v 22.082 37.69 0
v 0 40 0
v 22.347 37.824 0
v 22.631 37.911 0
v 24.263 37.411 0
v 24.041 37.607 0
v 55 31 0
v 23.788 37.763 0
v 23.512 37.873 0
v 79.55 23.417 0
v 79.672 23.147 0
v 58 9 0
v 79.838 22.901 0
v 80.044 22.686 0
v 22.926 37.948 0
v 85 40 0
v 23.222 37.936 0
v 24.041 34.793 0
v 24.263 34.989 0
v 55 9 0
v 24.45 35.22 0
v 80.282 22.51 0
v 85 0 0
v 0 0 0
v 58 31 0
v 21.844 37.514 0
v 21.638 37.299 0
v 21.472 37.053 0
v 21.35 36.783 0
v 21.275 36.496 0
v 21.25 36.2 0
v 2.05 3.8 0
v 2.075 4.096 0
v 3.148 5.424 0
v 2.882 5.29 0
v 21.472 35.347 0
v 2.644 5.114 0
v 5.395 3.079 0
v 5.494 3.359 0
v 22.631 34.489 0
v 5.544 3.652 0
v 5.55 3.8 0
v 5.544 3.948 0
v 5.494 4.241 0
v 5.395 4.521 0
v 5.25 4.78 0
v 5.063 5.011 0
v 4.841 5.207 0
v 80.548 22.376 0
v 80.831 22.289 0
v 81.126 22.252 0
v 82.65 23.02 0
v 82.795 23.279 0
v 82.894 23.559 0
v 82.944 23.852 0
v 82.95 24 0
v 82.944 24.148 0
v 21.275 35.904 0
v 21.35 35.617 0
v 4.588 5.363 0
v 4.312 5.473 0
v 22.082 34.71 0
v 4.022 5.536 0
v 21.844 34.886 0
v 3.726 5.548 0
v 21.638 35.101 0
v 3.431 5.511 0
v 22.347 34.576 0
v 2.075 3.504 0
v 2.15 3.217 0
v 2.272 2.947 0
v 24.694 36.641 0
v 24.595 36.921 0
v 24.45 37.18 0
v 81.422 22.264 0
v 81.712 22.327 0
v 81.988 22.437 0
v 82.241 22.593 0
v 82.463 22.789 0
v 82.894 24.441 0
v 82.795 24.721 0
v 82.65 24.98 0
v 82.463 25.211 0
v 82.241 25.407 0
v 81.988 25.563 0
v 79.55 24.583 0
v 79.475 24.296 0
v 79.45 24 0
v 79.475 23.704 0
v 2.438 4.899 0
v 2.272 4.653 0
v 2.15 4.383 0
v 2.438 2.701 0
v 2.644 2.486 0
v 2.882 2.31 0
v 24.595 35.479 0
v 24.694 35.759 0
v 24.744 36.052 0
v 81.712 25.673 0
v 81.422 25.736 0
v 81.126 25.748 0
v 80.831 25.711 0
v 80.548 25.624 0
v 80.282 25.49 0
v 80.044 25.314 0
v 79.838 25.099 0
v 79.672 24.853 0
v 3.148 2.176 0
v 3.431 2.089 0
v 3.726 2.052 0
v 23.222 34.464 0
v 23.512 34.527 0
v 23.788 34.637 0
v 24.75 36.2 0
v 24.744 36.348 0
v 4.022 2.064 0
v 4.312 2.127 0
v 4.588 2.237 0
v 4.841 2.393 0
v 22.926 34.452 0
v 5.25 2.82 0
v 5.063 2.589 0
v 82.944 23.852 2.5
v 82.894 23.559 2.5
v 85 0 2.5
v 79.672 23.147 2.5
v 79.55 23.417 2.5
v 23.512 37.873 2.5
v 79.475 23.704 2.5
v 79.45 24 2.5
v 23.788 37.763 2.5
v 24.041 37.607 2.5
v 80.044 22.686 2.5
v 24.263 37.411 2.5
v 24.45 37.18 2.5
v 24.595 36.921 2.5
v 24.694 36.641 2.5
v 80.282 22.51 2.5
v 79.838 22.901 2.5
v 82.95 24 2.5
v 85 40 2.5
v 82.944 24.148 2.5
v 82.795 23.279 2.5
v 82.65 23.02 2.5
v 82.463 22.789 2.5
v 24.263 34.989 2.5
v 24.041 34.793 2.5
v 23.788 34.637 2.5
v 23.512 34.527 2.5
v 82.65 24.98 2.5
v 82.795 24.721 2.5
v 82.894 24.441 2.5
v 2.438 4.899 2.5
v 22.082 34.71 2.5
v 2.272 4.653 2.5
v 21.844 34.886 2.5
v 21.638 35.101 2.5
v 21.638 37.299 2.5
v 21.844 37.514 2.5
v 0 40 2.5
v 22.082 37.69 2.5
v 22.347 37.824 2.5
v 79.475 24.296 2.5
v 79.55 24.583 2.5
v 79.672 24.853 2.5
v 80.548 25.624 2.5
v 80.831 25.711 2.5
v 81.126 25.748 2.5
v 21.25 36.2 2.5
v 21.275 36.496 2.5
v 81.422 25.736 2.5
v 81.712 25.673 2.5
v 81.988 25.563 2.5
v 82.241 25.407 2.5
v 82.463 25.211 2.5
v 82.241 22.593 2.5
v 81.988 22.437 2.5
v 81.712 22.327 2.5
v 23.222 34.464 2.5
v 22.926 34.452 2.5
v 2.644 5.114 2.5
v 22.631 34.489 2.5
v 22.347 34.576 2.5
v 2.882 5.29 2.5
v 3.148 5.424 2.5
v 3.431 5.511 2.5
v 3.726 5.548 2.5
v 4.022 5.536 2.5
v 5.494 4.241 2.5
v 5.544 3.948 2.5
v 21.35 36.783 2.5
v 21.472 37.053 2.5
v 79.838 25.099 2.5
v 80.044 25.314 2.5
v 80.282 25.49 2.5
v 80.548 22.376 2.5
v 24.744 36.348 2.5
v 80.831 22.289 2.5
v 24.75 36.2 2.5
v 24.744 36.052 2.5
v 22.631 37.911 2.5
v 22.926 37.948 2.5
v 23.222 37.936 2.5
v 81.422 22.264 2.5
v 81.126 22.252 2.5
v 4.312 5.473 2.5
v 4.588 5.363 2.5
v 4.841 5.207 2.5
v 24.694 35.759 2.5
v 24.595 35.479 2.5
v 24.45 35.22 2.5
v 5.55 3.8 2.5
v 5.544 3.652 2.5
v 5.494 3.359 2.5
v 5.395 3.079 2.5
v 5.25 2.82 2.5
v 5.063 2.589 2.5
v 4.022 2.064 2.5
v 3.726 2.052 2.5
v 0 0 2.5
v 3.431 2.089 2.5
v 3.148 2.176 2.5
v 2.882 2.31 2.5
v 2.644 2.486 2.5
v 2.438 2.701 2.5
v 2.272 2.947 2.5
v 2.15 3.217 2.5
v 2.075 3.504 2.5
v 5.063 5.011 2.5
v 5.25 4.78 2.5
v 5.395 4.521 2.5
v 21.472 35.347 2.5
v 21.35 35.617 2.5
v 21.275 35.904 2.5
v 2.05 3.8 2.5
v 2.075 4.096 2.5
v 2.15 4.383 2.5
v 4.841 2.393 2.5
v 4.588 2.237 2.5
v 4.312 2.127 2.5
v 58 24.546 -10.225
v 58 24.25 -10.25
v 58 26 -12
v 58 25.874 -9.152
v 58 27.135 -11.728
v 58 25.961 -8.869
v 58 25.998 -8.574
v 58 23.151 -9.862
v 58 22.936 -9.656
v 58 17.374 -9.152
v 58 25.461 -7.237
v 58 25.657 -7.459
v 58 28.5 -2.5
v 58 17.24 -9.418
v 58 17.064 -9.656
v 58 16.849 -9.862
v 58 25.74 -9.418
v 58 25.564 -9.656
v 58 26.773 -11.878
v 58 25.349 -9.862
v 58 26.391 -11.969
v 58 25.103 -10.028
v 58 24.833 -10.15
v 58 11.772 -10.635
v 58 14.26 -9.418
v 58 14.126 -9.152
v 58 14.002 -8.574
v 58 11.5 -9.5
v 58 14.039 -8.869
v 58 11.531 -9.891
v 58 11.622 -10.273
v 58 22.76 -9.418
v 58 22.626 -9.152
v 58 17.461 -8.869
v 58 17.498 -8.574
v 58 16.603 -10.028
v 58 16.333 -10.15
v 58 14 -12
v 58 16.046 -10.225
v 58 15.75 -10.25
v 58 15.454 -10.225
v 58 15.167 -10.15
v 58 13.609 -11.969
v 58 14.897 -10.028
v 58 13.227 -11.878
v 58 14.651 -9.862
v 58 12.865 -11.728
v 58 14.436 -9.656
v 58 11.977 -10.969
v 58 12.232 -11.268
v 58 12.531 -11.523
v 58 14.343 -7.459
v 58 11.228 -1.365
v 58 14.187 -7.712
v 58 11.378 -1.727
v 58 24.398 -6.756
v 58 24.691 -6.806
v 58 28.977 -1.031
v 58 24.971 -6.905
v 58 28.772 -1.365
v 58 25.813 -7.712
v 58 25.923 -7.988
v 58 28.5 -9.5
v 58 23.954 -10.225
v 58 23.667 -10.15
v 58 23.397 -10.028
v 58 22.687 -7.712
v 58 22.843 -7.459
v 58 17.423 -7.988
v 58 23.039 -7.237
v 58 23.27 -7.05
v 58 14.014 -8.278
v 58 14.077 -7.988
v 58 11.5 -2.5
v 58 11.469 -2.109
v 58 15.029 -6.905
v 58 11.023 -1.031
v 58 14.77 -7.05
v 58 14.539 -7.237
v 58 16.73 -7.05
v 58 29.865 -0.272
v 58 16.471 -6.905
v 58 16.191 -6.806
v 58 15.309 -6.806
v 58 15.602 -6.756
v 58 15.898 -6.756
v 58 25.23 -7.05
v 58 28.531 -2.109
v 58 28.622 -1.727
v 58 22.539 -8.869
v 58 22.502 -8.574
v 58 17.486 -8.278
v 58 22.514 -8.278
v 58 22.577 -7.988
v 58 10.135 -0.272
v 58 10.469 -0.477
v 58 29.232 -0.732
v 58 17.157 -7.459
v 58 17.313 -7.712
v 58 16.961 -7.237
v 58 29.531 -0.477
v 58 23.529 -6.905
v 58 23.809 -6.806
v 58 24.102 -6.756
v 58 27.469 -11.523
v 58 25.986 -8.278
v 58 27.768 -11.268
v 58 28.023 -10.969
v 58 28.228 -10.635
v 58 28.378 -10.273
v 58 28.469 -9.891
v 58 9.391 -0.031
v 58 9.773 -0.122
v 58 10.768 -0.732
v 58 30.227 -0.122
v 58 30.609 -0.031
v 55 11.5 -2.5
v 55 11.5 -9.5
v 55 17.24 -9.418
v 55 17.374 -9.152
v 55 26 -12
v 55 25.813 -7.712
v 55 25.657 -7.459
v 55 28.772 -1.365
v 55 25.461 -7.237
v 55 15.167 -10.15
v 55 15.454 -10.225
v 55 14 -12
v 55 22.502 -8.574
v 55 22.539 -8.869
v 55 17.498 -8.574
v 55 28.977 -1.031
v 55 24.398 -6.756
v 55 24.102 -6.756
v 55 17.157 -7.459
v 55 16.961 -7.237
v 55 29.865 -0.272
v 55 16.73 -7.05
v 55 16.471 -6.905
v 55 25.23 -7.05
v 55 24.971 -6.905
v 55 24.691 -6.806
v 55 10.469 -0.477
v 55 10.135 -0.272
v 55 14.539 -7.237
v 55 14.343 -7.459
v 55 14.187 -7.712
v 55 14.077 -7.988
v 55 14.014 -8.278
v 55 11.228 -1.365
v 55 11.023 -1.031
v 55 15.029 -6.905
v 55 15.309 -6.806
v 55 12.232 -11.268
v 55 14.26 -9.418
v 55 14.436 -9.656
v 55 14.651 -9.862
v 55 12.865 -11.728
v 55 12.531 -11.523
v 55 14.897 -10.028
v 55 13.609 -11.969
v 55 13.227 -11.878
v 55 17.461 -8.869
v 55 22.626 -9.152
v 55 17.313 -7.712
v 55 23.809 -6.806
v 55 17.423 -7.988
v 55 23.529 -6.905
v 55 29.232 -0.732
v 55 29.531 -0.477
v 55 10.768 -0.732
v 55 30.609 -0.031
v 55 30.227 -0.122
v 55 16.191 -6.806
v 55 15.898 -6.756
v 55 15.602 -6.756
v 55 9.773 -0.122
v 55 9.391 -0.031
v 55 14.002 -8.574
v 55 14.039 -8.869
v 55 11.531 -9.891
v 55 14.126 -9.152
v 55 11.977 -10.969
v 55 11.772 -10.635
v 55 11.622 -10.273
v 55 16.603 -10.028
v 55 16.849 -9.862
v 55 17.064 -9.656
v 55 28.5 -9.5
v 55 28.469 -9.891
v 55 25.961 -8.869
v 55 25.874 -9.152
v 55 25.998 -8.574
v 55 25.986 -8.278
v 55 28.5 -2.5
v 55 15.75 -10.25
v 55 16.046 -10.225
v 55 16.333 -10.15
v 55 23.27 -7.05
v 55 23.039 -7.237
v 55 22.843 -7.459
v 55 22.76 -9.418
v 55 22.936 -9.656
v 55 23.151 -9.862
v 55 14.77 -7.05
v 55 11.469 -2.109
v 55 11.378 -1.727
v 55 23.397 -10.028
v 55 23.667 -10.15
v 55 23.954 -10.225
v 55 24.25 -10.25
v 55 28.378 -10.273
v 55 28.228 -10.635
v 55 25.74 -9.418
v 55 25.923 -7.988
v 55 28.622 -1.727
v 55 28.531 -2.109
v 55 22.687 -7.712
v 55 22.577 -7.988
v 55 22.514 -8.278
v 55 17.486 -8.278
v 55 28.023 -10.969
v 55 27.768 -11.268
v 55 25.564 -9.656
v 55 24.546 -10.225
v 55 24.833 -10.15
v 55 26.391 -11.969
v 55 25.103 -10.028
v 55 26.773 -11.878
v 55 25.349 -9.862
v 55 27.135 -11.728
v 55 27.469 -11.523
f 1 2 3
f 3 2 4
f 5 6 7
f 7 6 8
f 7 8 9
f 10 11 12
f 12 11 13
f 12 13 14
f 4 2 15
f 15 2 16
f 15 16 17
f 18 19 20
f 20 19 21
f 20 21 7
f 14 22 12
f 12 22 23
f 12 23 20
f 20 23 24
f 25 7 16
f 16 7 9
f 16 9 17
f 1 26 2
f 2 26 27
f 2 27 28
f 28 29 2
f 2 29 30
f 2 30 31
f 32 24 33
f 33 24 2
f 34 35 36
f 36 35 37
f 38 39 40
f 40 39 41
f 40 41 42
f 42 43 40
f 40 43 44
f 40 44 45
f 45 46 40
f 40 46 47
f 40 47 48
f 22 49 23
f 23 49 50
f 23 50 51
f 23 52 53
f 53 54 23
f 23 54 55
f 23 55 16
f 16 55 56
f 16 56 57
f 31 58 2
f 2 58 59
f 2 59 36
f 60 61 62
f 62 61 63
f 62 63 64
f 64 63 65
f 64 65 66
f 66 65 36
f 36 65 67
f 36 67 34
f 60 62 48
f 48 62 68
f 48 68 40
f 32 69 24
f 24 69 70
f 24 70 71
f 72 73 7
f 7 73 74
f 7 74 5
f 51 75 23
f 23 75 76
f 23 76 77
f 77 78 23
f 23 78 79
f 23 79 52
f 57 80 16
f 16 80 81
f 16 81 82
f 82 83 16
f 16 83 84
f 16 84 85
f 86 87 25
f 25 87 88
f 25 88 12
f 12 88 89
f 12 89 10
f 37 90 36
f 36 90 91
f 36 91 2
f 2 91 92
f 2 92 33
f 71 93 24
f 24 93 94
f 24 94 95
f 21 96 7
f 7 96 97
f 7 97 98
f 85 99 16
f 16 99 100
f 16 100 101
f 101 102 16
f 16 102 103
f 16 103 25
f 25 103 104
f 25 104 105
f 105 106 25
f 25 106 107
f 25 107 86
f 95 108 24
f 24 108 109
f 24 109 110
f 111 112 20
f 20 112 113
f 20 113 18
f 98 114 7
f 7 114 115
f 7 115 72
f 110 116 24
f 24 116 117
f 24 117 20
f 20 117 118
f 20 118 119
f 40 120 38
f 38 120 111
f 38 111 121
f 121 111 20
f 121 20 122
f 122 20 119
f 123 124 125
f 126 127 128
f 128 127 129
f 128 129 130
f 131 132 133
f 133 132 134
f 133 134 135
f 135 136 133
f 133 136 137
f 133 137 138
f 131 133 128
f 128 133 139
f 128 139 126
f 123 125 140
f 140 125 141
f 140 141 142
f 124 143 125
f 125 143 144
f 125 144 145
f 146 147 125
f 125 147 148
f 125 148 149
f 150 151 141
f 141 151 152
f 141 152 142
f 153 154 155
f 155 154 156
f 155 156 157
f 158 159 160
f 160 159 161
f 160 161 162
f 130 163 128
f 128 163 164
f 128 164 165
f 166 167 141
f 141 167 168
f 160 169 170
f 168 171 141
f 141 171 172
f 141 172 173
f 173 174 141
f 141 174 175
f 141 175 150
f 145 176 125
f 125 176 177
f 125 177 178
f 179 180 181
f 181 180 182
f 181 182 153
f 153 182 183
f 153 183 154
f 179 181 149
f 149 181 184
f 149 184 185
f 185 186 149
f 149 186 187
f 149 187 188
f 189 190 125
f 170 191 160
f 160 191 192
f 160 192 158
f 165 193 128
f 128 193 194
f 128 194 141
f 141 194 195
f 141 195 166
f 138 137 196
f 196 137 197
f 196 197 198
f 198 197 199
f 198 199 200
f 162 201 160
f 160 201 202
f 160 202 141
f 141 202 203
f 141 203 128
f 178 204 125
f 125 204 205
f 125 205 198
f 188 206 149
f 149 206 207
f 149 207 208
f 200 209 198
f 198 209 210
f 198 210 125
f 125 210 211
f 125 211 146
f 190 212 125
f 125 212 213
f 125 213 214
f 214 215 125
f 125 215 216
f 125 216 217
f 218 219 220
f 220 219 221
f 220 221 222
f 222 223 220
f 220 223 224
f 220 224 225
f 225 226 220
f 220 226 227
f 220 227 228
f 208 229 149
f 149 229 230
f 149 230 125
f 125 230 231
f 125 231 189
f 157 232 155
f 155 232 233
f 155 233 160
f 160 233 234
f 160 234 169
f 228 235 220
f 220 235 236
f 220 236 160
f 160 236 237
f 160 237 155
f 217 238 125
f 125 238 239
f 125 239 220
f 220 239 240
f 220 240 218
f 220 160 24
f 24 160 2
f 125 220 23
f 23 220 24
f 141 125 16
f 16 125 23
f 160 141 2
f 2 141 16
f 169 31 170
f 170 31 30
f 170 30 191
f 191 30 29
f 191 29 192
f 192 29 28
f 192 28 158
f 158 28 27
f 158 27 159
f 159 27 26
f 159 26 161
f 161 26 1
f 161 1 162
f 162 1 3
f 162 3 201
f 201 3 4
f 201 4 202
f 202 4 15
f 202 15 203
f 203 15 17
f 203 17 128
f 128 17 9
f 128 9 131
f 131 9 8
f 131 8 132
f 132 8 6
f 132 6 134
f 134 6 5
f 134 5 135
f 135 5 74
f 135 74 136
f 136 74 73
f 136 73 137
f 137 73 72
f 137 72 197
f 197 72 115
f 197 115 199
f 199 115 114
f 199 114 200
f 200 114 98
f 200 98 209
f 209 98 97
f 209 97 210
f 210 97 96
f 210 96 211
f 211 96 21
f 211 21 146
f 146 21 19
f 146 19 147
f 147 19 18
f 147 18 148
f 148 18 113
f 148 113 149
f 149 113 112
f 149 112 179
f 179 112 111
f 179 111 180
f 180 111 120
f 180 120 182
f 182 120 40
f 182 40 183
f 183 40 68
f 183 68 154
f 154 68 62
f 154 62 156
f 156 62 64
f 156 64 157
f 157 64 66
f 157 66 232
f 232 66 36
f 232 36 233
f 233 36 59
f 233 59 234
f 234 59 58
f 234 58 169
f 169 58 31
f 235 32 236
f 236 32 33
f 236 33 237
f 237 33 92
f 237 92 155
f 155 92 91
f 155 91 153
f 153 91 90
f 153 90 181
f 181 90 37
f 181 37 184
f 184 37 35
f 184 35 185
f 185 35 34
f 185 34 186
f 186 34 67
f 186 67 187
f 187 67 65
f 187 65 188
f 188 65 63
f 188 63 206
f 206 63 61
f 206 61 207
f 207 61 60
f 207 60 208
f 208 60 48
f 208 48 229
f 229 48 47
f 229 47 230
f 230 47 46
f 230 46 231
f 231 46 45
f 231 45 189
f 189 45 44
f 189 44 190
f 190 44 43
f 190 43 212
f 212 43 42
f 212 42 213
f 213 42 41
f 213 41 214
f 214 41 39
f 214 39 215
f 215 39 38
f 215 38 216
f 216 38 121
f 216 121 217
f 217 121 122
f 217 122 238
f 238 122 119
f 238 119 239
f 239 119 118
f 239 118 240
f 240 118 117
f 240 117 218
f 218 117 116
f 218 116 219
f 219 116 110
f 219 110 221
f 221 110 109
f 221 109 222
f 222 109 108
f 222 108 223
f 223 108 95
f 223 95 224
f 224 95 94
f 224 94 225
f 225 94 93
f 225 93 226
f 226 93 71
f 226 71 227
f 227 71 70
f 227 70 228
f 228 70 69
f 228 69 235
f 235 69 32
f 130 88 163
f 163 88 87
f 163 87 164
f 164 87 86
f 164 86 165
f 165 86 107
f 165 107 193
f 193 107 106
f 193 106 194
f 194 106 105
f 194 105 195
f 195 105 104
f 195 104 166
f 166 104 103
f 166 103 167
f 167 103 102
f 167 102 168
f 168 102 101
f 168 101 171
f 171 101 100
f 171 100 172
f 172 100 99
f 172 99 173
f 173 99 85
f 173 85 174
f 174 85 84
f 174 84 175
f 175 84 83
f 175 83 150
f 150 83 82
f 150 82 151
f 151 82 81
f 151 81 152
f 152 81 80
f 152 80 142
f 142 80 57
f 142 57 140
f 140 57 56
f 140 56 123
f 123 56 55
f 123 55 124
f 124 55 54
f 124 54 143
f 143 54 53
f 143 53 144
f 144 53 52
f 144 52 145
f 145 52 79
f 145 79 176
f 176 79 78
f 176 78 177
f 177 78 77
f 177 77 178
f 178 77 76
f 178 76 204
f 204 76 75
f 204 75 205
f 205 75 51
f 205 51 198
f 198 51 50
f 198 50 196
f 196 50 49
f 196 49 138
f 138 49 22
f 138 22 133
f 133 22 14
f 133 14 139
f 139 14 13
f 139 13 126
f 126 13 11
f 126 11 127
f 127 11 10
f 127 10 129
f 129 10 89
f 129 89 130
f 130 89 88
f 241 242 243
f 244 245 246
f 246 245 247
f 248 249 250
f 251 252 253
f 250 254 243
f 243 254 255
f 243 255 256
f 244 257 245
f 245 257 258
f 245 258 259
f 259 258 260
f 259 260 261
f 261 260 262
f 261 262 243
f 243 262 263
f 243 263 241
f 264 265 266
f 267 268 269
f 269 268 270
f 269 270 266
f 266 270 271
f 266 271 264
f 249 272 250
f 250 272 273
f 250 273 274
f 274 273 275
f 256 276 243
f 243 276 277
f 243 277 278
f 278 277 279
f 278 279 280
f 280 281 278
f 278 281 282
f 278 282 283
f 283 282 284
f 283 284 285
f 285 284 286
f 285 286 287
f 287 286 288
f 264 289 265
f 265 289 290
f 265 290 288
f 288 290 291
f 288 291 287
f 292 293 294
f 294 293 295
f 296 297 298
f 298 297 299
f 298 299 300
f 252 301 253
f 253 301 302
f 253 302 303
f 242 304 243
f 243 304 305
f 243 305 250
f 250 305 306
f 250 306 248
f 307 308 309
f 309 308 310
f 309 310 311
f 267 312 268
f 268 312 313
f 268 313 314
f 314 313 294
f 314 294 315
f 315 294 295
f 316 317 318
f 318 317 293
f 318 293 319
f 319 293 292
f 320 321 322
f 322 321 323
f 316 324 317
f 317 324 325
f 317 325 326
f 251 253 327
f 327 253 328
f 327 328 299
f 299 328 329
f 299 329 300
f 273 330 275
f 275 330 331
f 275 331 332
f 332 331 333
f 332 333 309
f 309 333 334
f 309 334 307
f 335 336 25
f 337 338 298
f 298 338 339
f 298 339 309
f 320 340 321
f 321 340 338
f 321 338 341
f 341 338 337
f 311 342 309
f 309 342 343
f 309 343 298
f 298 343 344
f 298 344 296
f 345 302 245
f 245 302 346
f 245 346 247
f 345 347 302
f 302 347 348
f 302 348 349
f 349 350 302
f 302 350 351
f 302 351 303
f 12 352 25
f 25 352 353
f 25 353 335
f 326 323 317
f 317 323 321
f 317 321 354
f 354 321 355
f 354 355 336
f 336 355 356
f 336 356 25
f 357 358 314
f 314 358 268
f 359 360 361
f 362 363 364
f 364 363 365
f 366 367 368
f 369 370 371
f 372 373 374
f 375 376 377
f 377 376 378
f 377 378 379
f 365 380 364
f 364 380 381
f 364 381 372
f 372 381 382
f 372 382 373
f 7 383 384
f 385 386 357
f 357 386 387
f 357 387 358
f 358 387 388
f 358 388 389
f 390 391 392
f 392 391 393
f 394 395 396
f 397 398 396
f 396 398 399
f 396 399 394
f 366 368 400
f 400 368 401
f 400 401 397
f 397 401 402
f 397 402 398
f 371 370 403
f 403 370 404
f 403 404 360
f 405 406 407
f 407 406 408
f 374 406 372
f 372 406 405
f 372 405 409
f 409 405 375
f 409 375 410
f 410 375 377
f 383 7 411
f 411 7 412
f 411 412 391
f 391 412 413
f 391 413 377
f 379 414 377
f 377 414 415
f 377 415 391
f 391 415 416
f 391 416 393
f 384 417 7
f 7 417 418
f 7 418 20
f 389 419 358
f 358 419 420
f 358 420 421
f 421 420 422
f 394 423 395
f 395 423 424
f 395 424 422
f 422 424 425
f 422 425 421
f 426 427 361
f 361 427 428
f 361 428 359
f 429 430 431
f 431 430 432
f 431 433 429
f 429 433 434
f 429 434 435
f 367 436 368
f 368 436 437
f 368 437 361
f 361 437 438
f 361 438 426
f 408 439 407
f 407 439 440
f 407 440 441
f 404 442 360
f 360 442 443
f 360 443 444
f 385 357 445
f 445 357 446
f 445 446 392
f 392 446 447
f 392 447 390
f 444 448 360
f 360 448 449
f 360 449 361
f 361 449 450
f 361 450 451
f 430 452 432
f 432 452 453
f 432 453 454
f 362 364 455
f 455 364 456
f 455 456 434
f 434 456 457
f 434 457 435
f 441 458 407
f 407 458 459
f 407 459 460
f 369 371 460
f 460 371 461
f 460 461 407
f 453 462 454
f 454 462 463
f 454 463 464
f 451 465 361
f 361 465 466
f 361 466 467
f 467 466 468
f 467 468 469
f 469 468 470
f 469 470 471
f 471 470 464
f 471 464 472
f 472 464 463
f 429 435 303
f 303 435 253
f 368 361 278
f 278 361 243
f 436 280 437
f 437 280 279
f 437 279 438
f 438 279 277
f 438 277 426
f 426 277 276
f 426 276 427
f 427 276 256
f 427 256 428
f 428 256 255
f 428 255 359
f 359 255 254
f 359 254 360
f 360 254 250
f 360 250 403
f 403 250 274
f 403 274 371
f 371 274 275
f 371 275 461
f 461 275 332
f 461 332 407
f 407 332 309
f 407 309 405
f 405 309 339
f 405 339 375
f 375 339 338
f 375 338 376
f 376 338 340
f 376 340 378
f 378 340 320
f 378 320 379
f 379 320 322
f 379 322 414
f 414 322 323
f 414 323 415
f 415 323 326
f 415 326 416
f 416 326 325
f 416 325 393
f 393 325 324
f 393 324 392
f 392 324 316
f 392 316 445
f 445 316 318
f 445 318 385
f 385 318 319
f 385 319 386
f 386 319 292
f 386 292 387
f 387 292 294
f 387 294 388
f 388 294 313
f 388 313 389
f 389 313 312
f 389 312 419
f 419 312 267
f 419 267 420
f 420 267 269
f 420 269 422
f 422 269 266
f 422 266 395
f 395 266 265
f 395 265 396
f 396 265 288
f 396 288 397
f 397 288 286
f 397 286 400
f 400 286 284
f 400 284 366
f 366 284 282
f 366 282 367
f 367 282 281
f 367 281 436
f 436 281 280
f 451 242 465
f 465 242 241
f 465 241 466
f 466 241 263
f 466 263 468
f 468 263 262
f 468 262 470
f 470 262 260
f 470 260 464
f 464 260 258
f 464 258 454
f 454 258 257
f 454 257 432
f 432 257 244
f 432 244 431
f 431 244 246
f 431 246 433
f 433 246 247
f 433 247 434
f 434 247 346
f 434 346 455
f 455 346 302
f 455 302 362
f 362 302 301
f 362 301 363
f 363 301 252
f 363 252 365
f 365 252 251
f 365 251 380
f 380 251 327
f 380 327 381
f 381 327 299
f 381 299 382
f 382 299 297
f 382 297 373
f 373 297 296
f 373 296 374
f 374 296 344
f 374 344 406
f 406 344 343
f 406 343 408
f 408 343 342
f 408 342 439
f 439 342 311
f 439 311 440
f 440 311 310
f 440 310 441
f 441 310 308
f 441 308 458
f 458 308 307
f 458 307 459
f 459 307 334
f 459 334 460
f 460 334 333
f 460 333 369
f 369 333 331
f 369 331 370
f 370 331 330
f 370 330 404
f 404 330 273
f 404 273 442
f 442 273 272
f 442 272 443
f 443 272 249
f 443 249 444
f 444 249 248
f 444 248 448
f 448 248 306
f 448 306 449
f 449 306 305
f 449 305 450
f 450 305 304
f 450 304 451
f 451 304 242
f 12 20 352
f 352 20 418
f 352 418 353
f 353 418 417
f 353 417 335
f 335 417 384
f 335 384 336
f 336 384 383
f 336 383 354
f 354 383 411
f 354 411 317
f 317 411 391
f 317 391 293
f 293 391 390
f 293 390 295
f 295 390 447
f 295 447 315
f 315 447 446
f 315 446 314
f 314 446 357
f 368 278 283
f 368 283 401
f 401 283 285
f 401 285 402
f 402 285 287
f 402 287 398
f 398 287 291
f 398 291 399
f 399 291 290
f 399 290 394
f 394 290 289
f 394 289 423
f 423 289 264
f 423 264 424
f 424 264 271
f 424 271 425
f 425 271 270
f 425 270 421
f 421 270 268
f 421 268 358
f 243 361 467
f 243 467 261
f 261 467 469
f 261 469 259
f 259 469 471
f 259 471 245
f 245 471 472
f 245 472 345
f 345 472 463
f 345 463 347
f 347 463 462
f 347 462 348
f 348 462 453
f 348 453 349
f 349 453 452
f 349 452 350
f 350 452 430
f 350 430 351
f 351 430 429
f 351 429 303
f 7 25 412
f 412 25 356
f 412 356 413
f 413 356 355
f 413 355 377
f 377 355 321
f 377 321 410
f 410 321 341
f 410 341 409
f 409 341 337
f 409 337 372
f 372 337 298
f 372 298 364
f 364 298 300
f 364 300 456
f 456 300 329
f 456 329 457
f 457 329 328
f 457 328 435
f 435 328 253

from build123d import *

# Parameters (mm, degrees)
ESQUISSE1_W             = 85
ESQUISSE1_H             = 40
ESQUISSE1_R             = 1.75
BOSS_EXTRU_1_DEPTH      = 2.5
ESQUISSE2_W             = 3
ESQUISSE2_H             = 17
BOSS_EXTRU_2_DEPTH      = 12
ESQUISSE3_R             = 1.75
ENL_V_MAT_EXTRU_1_DEPTH = 59
CONG_1_R                = 2.5


with BuildPart() as part:
    # Esquisse1 → Boss.-Extru.1 (new body)
    with BuildSketch(Plane.XY):
        with Locations((42.5, 20)):
            Rectangle(ESQUISSE1_W, ESQUISSE1_H)
        with Locations((23, 36.2)):
            Circle(ESQUISSE1_R, mode=Mode.SUBTRACT)
        with Locations((3.8, 3.8)):
            Circle(ESQUISSE1_R, mode=Mode.SUBTRACT)
        with Locations((81.2, 24)):
            Circle(ESQUISSE1_R, mode=Mode.SUBTRACT)
    extrude(amount=BOSS_EXTRU_1_DEPTH)

    # Esquisse2 → Boss.-Extru.2 (add)
    with BuildSketch(Plane(origin=(0, 0, 0), x_dir=(-1, 0, 0), z_dir=(0, 0, -1))):
        with Locations((-56.5, 20)):
            Rectangle(ESQUISSE2_W, ESQUISSE2_H)
    extrude(amount=BOSS_EXTRU_2_DEPTH)

    # Esquisse3 → Enlèv. mat.-Extru.1 (cut, through all)
    with BuildSketch(Plane(origin=(58, 0, 0), x_dir=(0, 0, -1), z_dir=(1, 0, 0))):
        with Locations((8.5, 24.25)):
            Circle(ESQUISSE3_R)
        with Locations((8.5, 15.75)):
            Circle(ESQUISSE3_R)
    extrude(amount=-ENL_V_MAT_EXTRU_1_DEPTH, mode=Mode.SUBTRACT)

    # Congé1
    cong_1_edges = [part.edges().sort_by_distance(p)[0] for p in [
        (56.5, 11.5, 0),
        (56.5, 28.5, 0),
        (56.5, 11.5, -12),
        (56.5, 28.5, -12),
    ]]
    fillet(cong_1_edges, radius=CONG_1_R)


solid = part.part
